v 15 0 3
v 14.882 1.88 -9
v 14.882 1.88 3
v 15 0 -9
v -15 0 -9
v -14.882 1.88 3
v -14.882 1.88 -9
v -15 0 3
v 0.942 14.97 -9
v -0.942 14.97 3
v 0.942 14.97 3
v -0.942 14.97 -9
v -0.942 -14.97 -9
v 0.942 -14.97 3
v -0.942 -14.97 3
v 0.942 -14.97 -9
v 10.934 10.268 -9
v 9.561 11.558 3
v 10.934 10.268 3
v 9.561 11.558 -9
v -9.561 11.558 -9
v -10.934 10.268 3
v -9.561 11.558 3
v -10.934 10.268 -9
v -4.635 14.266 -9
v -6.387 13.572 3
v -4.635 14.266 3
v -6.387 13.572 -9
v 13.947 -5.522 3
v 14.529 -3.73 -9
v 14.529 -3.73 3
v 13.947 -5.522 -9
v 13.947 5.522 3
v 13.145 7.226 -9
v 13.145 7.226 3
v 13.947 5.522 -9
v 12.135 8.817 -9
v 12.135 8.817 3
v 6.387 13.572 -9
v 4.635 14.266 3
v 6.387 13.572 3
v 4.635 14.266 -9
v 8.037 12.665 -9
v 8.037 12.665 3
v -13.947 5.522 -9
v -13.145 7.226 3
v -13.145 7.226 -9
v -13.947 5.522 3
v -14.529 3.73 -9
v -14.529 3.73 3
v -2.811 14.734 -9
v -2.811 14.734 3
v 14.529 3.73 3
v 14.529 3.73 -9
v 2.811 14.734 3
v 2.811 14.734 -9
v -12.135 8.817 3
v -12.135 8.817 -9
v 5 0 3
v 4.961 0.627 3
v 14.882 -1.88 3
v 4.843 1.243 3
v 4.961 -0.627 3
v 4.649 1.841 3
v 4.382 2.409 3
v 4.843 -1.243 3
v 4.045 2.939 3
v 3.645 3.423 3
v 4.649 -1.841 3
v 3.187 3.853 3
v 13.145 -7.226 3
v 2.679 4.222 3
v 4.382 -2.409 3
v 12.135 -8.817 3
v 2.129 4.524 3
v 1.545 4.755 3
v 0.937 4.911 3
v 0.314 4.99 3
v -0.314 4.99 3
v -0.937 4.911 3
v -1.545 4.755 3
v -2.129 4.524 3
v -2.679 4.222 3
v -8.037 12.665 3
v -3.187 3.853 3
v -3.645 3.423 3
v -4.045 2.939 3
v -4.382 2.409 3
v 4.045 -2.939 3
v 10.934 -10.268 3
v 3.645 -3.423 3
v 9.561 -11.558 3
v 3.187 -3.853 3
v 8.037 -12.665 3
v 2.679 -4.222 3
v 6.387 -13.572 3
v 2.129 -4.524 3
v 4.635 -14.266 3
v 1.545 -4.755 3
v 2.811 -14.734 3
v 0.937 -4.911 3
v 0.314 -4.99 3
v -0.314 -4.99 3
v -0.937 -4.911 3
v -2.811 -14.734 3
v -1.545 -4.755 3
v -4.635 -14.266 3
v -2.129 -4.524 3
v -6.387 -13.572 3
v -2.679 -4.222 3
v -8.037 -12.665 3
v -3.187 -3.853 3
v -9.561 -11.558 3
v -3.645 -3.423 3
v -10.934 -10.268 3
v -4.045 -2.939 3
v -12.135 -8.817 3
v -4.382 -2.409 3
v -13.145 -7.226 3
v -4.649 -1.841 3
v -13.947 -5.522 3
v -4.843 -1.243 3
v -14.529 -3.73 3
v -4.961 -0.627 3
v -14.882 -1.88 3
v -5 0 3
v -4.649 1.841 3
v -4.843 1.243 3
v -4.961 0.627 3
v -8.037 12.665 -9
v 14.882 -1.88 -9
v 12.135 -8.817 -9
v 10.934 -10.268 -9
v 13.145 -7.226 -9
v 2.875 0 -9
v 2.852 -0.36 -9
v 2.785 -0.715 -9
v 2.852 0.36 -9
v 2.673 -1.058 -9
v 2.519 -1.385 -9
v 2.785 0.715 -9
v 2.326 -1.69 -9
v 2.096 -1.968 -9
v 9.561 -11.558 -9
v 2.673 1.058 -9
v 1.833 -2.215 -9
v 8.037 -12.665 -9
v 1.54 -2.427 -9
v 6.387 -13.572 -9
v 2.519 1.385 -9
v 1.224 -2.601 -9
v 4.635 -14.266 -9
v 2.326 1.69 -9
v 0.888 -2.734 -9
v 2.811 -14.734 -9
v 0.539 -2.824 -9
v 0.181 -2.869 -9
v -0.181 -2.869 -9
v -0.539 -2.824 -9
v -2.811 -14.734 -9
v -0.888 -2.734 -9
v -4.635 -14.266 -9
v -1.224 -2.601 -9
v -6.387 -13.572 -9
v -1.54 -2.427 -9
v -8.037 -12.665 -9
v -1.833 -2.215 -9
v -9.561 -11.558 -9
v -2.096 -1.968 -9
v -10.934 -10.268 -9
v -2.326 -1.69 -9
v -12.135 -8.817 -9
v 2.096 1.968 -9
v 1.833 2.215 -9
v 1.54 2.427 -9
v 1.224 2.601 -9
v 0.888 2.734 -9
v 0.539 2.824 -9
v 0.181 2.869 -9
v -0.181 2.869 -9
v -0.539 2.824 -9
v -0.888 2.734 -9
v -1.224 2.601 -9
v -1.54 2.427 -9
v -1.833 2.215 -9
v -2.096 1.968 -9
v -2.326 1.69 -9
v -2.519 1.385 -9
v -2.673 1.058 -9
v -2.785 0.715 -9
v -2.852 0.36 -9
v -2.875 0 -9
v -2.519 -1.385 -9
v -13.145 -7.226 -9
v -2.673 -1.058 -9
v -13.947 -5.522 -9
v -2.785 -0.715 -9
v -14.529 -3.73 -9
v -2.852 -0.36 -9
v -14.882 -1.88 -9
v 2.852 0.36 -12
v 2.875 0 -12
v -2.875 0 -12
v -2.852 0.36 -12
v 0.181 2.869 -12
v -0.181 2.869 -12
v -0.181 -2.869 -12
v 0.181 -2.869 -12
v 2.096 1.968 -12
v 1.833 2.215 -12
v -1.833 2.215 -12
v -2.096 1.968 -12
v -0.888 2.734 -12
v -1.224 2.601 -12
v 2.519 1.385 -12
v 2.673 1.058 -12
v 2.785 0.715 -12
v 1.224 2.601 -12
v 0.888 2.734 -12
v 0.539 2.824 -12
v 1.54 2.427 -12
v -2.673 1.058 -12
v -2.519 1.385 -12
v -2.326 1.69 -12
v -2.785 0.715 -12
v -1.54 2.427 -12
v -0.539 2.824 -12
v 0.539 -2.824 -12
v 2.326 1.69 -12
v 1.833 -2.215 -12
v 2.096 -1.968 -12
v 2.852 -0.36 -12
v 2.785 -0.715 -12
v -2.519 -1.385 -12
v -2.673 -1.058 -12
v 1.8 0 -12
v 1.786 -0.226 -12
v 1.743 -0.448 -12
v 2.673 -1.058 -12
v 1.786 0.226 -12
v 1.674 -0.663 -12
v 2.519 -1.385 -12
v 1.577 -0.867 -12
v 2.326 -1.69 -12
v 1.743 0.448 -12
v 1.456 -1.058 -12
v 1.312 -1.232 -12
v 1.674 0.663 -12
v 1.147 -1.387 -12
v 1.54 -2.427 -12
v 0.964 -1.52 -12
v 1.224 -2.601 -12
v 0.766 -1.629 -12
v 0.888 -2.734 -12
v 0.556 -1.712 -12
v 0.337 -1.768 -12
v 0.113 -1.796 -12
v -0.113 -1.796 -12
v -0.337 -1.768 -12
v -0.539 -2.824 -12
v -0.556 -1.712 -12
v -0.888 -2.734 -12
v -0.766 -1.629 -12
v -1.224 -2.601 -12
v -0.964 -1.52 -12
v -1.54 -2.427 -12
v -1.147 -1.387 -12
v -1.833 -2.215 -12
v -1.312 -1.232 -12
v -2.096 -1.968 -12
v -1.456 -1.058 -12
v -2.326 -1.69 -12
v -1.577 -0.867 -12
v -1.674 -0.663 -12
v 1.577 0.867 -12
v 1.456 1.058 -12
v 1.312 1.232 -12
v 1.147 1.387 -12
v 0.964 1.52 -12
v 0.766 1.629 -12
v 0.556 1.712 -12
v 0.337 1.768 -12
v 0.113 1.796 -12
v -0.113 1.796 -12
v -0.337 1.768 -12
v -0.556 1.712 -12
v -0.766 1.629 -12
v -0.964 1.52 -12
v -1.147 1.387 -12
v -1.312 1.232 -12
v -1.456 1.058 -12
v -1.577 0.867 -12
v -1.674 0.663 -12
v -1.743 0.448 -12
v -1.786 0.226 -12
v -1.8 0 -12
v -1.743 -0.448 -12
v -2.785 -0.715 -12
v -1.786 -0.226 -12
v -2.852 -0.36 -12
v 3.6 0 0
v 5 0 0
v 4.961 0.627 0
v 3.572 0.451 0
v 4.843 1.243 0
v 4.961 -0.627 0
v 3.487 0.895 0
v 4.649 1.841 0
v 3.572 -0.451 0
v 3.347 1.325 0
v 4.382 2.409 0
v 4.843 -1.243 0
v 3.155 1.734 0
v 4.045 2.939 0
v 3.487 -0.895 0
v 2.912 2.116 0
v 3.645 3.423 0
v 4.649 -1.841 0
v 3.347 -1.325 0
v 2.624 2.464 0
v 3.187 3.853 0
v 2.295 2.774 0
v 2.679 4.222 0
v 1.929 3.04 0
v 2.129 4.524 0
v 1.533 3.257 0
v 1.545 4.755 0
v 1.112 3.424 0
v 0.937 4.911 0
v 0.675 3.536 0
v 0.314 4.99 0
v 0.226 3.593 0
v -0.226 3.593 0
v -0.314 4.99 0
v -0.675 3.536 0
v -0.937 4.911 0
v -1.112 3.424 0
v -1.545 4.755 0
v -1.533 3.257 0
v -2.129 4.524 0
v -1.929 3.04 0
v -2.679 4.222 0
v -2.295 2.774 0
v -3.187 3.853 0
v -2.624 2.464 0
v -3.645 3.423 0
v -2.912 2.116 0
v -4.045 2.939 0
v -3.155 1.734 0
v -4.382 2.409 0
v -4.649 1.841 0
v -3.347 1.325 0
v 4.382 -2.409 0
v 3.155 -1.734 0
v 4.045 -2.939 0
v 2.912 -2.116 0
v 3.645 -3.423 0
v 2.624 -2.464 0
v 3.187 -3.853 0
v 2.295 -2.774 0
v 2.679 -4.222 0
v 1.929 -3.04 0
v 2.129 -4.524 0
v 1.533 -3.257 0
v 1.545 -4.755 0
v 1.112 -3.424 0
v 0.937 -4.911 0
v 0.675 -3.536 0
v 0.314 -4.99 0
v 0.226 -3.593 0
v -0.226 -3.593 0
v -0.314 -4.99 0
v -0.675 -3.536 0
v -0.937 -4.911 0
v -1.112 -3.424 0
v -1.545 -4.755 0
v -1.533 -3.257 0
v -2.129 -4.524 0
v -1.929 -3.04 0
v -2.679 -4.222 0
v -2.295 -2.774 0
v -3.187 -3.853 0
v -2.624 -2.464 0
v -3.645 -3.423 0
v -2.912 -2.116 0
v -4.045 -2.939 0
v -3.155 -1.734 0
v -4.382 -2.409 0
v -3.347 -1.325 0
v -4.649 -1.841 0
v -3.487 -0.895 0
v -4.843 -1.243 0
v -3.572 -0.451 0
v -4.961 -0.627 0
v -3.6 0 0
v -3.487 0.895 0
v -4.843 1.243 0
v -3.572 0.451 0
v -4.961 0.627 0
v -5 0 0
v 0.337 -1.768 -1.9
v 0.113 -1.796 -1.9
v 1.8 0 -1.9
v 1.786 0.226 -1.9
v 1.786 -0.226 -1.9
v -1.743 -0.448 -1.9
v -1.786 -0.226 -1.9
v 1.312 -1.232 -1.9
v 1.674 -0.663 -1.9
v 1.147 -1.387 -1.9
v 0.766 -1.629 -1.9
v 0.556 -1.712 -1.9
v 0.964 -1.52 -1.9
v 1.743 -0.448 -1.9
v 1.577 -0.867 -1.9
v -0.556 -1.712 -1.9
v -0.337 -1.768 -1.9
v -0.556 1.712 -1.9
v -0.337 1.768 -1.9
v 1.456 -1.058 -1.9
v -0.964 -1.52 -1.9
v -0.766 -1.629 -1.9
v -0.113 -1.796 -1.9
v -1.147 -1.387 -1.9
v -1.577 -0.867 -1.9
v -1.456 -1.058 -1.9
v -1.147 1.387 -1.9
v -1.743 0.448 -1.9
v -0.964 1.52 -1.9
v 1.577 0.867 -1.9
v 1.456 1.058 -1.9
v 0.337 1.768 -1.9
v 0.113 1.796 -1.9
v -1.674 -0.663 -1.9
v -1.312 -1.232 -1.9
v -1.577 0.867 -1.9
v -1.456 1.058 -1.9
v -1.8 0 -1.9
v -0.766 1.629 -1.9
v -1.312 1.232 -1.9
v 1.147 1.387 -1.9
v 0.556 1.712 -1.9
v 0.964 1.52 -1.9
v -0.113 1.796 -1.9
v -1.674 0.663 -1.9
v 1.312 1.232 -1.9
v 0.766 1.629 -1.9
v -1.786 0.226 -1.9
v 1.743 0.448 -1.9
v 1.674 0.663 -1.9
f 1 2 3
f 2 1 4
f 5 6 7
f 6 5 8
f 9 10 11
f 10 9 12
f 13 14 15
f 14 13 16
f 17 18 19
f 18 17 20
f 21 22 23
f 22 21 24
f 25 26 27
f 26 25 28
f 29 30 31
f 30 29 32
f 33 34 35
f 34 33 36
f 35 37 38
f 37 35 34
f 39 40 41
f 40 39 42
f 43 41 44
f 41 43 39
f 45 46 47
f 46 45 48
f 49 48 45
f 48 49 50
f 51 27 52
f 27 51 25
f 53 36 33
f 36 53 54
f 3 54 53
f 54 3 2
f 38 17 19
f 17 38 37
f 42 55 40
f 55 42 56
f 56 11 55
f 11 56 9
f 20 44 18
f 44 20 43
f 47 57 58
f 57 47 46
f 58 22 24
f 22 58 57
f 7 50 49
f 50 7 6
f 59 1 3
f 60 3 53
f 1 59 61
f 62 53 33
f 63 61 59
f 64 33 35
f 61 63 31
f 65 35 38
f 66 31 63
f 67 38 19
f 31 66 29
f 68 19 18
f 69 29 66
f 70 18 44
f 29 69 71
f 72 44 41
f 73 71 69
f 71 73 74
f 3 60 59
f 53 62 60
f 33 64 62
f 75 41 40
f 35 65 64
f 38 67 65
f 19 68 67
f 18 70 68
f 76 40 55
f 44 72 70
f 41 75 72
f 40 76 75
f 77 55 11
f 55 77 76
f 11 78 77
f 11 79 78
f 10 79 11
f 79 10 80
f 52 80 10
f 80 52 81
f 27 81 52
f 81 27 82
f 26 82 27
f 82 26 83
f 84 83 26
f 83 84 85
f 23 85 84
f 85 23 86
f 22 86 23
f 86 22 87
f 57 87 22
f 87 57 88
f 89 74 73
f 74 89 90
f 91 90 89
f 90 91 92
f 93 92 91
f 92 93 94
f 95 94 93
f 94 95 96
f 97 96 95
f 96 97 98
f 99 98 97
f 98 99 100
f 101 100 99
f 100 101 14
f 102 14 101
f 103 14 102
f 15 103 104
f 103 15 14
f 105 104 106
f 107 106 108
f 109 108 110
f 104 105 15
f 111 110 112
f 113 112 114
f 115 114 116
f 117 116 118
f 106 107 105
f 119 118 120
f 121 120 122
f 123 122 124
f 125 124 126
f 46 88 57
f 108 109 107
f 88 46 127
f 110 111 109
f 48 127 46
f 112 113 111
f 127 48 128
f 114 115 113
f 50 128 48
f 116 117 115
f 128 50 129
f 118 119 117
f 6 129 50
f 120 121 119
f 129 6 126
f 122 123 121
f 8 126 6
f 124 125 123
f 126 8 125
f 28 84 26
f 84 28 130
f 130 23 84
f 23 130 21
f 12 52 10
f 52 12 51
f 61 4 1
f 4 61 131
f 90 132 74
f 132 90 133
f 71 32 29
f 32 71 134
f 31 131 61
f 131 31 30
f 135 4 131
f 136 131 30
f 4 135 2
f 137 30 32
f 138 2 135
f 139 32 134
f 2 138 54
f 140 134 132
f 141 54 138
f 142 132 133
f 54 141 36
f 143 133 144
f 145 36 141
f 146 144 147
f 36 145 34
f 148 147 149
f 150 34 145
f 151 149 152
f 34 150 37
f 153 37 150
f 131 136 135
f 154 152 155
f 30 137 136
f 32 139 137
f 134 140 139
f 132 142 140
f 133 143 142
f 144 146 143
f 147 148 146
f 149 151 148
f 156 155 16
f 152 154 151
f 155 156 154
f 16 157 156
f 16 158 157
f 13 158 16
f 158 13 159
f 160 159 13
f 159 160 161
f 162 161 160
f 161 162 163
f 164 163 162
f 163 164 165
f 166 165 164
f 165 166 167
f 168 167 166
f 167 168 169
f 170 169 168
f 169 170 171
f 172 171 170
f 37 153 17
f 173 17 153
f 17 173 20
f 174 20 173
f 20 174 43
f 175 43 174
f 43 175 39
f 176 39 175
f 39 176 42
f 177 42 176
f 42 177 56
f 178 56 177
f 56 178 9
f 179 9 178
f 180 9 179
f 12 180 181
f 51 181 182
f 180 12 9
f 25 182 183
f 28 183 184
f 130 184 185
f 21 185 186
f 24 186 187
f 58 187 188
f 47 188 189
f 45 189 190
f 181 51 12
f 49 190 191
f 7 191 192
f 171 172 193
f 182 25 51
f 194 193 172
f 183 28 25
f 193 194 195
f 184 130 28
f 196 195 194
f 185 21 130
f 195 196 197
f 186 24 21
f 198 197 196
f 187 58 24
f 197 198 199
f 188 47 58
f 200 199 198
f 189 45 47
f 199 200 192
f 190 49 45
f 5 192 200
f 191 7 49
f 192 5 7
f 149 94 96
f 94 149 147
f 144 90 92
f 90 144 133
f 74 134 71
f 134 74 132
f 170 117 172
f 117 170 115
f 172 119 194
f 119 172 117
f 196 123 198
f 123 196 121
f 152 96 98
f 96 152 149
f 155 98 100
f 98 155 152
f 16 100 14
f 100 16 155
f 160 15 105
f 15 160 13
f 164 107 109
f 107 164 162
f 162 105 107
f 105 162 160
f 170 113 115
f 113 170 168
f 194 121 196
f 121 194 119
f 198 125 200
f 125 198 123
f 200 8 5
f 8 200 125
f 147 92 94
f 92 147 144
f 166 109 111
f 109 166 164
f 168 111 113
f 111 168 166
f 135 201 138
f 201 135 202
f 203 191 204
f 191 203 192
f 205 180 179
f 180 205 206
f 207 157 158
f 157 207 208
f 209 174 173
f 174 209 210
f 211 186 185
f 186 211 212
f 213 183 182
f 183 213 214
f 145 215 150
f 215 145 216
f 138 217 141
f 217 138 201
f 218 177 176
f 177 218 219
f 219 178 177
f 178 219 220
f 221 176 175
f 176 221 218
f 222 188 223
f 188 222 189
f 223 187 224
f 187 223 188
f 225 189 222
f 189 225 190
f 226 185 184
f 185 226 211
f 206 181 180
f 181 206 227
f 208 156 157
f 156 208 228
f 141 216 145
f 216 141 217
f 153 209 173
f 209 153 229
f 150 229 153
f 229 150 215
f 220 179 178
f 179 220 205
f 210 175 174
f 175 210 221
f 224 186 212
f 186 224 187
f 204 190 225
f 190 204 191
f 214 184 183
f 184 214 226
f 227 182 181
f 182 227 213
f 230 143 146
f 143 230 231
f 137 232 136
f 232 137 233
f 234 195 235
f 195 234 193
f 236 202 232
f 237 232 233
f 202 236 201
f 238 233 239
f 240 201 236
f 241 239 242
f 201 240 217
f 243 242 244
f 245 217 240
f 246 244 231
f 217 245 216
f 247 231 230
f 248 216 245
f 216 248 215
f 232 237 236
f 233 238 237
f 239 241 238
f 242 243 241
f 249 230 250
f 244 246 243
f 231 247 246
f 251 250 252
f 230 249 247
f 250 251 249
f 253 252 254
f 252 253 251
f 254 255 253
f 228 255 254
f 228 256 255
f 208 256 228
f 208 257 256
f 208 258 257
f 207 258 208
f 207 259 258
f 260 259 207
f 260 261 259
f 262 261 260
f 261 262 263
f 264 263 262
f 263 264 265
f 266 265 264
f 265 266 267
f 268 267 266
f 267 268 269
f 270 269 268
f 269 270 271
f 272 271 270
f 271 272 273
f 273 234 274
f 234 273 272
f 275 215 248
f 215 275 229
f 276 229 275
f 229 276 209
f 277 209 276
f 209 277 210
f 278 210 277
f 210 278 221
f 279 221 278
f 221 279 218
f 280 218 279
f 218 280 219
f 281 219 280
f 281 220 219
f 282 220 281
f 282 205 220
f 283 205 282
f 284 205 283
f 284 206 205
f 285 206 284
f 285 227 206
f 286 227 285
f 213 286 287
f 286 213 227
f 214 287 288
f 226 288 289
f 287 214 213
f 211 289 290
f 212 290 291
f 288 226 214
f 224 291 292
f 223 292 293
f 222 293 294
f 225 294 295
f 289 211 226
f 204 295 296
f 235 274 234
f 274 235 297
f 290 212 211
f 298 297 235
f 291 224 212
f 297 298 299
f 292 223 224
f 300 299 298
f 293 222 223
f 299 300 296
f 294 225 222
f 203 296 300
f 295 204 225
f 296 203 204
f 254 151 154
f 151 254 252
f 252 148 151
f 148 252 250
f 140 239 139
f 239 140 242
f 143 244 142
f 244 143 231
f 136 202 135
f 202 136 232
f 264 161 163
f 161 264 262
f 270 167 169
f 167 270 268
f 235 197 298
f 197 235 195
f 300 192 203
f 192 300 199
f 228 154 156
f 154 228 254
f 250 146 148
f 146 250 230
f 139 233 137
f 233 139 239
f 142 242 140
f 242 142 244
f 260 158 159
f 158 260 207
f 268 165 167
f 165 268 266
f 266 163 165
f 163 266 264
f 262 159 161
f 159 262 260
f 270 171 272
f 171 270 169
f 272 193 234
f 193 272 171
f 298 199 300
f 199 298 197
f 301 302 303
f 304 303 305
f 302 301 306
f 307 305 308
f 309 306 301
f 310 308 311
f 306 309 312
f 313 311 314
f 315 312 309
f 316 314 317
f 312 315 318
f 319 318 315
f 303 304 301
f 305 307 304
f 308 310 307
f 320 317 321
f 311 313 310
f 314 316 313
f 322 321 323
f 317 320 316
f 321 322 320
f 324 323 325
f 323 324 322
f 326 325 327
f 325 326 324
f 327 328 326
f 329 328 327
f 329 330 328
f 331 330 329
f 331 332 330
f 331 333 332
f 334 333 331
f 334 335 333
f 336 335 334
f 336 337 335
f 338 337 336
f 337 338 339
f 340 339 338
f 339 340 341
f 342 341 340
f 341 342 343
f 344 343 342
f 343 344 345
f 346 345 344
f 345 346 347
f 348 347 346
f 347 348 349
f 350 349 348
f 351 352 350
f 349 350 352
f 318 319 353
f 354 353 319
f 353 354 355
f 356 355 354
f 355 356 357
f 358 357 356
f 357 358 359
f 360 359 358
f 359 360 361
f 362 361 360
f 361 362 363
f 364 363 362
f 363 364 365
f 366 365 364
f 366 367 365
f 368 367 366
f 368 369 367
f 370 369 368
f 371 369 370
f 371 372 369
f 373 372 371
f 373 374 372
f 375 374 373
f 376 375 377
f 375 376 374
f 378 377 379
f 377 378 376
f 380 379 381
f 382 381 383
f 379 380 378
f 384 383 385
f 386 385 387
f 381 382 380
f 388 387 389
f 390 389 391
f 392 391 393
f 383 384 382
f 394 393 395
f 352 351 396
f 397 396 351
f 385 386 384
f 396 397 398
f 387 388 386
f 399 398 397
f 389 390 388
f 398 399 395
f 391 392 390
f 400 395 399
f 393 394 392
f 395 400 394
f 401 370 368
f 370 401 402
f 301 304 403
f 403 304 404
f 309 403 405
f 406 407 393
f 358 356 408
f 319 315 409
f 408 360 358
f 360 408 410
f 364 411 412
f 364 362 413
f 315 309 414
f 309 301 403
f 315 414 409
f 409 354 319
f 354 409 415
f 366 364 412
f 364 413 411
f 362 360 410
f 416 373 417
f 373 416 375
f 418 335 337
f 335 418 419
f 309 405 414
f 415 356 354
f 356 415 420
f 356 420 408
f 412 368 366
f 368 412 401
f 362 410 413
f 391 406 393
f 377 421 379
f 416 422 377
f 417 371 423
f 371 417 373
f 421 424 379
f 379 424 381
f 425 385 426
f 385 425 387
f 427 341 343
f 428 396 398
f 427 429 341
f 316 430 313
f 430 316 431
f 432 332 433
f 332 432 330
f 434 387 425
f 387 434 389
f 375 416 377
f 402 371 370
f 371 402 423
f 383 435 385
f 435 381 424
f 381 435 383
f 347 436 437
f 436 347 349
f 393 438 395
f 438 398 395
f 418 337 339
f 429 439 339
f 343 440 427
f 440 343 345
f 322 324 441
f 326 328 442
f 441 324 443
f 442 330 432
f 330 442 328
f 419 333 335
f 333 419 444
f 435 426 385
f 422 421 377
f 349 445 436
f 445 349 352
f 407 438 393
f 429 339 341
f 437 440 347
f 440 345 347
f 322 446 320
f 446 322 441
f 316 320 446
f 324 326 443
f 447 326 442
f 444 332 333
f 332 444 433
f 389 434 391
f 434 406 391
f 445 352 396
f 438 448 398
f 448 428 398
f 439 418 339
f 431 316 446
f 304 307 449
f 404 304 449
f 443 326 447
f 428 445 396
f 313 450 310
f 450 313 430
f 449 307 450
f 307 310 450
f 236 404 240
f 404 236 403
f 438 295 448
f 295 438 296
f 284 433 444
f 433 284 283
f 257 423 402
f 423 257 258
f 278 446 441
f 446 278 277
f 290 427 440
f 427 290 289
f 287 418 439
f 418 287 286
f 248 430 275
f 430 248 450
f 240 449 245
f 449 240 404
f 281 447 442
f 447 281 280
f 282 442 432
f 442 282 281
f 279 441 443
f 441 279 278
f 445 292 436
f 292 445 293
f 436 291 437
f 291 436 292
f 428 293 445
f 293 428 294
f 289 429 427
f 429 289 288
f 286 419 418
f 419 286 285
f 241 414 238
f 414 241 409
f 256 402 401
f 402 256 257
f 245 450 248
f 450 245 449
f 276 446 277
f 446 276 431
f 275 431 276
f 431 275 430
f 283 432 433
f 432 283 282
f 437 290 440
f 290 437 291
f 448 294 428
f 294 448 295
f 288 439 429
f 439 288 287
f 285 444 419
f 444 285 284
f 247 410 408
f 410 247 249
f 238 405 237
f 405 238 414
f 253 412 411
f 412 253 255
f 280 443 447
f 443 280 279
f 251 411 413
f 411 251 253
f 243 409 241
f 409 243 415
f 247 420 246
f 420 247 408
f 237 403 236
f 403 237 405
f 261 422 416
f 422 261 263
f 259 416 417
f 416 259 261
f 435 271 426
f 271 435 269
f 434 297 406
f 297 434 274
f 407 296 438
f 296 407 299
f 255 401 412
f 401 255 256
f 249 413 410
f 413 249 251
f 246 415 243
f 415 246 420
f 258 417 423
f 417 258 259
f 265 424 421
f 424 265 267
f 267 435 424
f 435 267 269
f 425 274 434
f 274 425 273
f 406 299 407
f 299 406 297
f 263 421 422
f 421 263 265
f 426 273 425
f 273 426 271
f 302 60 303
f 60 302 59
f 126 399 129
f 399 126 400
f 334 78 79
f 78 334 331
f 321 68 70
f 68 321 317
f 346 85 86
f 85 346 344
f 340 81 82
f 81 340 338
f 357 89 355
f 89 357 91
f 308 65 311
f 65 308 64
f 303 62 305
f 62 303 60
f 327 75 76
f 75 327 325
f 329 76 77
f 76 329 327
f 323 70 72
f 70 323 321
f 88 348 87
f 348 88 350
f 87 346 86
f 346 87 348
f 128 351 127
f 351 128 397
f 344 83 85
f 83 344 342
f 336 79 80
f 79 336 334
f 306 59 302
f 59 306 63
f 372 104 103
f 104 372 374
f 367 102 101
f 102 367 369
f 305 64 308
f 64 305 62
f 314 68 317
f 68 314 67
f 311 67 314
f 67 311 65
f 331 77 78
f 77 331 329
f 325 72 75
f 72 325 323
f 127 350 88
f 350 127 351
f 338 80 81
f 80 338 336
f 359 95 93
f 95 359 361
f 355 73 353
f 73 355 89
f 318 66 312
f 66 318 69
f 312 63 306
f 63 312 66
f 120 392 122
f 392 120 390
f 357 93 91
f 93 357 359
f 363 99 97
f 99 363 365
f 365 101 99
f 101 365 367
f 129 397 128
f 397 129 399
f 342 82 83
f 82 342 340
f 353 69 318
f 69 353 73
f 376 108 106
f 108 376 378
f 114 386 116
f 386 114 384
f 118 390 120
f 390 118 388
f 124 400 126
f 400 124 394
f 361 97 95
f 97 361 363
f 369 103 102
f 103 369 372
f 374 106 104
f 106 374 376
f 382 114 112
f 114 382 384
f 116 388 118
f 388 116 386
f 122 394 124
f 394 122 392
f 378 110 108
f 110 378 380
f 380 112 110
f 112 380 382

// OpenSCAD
$fn = 50;


difference() {
	union() {
		translate(v = [0, 0, -9.0000000000]) {
			cylinder(h = 12, r = 15.0000000000);
		}
		#translate(v = [0, 0, -12.0000000000]) {
			cylinder(h = 12, r = 2.8750000000);
		}
	}
	union() {
		translate(v = [0, 0, 0]) {
			rotate(a = [0, 0, 0]) {
				difference() {
					union() {
						translate(v = [0, 0, -12.0000000000]) {
							cylinder(h = 12, r = 1.5000000000);
						}
						translate(v = [0, 0, -1.9000000000]) {
							cylinder(h = 1.9000000000, r1 = 1.8000000000, r2 = 3.6000000000);
						}
						translate(v = [0, 0, -12.0000000000]) {
							cylinder(h = 12, r = 1.8000000000);
						}
						translate(v = [0, 0, -12.0000000000]) {
							cylinder(h = 12, r = 1.5000000000);
						}
					}
					union();
				}
			}
		}
		#cylinder(h = 3, r = 5.0000000000);
	}
}
